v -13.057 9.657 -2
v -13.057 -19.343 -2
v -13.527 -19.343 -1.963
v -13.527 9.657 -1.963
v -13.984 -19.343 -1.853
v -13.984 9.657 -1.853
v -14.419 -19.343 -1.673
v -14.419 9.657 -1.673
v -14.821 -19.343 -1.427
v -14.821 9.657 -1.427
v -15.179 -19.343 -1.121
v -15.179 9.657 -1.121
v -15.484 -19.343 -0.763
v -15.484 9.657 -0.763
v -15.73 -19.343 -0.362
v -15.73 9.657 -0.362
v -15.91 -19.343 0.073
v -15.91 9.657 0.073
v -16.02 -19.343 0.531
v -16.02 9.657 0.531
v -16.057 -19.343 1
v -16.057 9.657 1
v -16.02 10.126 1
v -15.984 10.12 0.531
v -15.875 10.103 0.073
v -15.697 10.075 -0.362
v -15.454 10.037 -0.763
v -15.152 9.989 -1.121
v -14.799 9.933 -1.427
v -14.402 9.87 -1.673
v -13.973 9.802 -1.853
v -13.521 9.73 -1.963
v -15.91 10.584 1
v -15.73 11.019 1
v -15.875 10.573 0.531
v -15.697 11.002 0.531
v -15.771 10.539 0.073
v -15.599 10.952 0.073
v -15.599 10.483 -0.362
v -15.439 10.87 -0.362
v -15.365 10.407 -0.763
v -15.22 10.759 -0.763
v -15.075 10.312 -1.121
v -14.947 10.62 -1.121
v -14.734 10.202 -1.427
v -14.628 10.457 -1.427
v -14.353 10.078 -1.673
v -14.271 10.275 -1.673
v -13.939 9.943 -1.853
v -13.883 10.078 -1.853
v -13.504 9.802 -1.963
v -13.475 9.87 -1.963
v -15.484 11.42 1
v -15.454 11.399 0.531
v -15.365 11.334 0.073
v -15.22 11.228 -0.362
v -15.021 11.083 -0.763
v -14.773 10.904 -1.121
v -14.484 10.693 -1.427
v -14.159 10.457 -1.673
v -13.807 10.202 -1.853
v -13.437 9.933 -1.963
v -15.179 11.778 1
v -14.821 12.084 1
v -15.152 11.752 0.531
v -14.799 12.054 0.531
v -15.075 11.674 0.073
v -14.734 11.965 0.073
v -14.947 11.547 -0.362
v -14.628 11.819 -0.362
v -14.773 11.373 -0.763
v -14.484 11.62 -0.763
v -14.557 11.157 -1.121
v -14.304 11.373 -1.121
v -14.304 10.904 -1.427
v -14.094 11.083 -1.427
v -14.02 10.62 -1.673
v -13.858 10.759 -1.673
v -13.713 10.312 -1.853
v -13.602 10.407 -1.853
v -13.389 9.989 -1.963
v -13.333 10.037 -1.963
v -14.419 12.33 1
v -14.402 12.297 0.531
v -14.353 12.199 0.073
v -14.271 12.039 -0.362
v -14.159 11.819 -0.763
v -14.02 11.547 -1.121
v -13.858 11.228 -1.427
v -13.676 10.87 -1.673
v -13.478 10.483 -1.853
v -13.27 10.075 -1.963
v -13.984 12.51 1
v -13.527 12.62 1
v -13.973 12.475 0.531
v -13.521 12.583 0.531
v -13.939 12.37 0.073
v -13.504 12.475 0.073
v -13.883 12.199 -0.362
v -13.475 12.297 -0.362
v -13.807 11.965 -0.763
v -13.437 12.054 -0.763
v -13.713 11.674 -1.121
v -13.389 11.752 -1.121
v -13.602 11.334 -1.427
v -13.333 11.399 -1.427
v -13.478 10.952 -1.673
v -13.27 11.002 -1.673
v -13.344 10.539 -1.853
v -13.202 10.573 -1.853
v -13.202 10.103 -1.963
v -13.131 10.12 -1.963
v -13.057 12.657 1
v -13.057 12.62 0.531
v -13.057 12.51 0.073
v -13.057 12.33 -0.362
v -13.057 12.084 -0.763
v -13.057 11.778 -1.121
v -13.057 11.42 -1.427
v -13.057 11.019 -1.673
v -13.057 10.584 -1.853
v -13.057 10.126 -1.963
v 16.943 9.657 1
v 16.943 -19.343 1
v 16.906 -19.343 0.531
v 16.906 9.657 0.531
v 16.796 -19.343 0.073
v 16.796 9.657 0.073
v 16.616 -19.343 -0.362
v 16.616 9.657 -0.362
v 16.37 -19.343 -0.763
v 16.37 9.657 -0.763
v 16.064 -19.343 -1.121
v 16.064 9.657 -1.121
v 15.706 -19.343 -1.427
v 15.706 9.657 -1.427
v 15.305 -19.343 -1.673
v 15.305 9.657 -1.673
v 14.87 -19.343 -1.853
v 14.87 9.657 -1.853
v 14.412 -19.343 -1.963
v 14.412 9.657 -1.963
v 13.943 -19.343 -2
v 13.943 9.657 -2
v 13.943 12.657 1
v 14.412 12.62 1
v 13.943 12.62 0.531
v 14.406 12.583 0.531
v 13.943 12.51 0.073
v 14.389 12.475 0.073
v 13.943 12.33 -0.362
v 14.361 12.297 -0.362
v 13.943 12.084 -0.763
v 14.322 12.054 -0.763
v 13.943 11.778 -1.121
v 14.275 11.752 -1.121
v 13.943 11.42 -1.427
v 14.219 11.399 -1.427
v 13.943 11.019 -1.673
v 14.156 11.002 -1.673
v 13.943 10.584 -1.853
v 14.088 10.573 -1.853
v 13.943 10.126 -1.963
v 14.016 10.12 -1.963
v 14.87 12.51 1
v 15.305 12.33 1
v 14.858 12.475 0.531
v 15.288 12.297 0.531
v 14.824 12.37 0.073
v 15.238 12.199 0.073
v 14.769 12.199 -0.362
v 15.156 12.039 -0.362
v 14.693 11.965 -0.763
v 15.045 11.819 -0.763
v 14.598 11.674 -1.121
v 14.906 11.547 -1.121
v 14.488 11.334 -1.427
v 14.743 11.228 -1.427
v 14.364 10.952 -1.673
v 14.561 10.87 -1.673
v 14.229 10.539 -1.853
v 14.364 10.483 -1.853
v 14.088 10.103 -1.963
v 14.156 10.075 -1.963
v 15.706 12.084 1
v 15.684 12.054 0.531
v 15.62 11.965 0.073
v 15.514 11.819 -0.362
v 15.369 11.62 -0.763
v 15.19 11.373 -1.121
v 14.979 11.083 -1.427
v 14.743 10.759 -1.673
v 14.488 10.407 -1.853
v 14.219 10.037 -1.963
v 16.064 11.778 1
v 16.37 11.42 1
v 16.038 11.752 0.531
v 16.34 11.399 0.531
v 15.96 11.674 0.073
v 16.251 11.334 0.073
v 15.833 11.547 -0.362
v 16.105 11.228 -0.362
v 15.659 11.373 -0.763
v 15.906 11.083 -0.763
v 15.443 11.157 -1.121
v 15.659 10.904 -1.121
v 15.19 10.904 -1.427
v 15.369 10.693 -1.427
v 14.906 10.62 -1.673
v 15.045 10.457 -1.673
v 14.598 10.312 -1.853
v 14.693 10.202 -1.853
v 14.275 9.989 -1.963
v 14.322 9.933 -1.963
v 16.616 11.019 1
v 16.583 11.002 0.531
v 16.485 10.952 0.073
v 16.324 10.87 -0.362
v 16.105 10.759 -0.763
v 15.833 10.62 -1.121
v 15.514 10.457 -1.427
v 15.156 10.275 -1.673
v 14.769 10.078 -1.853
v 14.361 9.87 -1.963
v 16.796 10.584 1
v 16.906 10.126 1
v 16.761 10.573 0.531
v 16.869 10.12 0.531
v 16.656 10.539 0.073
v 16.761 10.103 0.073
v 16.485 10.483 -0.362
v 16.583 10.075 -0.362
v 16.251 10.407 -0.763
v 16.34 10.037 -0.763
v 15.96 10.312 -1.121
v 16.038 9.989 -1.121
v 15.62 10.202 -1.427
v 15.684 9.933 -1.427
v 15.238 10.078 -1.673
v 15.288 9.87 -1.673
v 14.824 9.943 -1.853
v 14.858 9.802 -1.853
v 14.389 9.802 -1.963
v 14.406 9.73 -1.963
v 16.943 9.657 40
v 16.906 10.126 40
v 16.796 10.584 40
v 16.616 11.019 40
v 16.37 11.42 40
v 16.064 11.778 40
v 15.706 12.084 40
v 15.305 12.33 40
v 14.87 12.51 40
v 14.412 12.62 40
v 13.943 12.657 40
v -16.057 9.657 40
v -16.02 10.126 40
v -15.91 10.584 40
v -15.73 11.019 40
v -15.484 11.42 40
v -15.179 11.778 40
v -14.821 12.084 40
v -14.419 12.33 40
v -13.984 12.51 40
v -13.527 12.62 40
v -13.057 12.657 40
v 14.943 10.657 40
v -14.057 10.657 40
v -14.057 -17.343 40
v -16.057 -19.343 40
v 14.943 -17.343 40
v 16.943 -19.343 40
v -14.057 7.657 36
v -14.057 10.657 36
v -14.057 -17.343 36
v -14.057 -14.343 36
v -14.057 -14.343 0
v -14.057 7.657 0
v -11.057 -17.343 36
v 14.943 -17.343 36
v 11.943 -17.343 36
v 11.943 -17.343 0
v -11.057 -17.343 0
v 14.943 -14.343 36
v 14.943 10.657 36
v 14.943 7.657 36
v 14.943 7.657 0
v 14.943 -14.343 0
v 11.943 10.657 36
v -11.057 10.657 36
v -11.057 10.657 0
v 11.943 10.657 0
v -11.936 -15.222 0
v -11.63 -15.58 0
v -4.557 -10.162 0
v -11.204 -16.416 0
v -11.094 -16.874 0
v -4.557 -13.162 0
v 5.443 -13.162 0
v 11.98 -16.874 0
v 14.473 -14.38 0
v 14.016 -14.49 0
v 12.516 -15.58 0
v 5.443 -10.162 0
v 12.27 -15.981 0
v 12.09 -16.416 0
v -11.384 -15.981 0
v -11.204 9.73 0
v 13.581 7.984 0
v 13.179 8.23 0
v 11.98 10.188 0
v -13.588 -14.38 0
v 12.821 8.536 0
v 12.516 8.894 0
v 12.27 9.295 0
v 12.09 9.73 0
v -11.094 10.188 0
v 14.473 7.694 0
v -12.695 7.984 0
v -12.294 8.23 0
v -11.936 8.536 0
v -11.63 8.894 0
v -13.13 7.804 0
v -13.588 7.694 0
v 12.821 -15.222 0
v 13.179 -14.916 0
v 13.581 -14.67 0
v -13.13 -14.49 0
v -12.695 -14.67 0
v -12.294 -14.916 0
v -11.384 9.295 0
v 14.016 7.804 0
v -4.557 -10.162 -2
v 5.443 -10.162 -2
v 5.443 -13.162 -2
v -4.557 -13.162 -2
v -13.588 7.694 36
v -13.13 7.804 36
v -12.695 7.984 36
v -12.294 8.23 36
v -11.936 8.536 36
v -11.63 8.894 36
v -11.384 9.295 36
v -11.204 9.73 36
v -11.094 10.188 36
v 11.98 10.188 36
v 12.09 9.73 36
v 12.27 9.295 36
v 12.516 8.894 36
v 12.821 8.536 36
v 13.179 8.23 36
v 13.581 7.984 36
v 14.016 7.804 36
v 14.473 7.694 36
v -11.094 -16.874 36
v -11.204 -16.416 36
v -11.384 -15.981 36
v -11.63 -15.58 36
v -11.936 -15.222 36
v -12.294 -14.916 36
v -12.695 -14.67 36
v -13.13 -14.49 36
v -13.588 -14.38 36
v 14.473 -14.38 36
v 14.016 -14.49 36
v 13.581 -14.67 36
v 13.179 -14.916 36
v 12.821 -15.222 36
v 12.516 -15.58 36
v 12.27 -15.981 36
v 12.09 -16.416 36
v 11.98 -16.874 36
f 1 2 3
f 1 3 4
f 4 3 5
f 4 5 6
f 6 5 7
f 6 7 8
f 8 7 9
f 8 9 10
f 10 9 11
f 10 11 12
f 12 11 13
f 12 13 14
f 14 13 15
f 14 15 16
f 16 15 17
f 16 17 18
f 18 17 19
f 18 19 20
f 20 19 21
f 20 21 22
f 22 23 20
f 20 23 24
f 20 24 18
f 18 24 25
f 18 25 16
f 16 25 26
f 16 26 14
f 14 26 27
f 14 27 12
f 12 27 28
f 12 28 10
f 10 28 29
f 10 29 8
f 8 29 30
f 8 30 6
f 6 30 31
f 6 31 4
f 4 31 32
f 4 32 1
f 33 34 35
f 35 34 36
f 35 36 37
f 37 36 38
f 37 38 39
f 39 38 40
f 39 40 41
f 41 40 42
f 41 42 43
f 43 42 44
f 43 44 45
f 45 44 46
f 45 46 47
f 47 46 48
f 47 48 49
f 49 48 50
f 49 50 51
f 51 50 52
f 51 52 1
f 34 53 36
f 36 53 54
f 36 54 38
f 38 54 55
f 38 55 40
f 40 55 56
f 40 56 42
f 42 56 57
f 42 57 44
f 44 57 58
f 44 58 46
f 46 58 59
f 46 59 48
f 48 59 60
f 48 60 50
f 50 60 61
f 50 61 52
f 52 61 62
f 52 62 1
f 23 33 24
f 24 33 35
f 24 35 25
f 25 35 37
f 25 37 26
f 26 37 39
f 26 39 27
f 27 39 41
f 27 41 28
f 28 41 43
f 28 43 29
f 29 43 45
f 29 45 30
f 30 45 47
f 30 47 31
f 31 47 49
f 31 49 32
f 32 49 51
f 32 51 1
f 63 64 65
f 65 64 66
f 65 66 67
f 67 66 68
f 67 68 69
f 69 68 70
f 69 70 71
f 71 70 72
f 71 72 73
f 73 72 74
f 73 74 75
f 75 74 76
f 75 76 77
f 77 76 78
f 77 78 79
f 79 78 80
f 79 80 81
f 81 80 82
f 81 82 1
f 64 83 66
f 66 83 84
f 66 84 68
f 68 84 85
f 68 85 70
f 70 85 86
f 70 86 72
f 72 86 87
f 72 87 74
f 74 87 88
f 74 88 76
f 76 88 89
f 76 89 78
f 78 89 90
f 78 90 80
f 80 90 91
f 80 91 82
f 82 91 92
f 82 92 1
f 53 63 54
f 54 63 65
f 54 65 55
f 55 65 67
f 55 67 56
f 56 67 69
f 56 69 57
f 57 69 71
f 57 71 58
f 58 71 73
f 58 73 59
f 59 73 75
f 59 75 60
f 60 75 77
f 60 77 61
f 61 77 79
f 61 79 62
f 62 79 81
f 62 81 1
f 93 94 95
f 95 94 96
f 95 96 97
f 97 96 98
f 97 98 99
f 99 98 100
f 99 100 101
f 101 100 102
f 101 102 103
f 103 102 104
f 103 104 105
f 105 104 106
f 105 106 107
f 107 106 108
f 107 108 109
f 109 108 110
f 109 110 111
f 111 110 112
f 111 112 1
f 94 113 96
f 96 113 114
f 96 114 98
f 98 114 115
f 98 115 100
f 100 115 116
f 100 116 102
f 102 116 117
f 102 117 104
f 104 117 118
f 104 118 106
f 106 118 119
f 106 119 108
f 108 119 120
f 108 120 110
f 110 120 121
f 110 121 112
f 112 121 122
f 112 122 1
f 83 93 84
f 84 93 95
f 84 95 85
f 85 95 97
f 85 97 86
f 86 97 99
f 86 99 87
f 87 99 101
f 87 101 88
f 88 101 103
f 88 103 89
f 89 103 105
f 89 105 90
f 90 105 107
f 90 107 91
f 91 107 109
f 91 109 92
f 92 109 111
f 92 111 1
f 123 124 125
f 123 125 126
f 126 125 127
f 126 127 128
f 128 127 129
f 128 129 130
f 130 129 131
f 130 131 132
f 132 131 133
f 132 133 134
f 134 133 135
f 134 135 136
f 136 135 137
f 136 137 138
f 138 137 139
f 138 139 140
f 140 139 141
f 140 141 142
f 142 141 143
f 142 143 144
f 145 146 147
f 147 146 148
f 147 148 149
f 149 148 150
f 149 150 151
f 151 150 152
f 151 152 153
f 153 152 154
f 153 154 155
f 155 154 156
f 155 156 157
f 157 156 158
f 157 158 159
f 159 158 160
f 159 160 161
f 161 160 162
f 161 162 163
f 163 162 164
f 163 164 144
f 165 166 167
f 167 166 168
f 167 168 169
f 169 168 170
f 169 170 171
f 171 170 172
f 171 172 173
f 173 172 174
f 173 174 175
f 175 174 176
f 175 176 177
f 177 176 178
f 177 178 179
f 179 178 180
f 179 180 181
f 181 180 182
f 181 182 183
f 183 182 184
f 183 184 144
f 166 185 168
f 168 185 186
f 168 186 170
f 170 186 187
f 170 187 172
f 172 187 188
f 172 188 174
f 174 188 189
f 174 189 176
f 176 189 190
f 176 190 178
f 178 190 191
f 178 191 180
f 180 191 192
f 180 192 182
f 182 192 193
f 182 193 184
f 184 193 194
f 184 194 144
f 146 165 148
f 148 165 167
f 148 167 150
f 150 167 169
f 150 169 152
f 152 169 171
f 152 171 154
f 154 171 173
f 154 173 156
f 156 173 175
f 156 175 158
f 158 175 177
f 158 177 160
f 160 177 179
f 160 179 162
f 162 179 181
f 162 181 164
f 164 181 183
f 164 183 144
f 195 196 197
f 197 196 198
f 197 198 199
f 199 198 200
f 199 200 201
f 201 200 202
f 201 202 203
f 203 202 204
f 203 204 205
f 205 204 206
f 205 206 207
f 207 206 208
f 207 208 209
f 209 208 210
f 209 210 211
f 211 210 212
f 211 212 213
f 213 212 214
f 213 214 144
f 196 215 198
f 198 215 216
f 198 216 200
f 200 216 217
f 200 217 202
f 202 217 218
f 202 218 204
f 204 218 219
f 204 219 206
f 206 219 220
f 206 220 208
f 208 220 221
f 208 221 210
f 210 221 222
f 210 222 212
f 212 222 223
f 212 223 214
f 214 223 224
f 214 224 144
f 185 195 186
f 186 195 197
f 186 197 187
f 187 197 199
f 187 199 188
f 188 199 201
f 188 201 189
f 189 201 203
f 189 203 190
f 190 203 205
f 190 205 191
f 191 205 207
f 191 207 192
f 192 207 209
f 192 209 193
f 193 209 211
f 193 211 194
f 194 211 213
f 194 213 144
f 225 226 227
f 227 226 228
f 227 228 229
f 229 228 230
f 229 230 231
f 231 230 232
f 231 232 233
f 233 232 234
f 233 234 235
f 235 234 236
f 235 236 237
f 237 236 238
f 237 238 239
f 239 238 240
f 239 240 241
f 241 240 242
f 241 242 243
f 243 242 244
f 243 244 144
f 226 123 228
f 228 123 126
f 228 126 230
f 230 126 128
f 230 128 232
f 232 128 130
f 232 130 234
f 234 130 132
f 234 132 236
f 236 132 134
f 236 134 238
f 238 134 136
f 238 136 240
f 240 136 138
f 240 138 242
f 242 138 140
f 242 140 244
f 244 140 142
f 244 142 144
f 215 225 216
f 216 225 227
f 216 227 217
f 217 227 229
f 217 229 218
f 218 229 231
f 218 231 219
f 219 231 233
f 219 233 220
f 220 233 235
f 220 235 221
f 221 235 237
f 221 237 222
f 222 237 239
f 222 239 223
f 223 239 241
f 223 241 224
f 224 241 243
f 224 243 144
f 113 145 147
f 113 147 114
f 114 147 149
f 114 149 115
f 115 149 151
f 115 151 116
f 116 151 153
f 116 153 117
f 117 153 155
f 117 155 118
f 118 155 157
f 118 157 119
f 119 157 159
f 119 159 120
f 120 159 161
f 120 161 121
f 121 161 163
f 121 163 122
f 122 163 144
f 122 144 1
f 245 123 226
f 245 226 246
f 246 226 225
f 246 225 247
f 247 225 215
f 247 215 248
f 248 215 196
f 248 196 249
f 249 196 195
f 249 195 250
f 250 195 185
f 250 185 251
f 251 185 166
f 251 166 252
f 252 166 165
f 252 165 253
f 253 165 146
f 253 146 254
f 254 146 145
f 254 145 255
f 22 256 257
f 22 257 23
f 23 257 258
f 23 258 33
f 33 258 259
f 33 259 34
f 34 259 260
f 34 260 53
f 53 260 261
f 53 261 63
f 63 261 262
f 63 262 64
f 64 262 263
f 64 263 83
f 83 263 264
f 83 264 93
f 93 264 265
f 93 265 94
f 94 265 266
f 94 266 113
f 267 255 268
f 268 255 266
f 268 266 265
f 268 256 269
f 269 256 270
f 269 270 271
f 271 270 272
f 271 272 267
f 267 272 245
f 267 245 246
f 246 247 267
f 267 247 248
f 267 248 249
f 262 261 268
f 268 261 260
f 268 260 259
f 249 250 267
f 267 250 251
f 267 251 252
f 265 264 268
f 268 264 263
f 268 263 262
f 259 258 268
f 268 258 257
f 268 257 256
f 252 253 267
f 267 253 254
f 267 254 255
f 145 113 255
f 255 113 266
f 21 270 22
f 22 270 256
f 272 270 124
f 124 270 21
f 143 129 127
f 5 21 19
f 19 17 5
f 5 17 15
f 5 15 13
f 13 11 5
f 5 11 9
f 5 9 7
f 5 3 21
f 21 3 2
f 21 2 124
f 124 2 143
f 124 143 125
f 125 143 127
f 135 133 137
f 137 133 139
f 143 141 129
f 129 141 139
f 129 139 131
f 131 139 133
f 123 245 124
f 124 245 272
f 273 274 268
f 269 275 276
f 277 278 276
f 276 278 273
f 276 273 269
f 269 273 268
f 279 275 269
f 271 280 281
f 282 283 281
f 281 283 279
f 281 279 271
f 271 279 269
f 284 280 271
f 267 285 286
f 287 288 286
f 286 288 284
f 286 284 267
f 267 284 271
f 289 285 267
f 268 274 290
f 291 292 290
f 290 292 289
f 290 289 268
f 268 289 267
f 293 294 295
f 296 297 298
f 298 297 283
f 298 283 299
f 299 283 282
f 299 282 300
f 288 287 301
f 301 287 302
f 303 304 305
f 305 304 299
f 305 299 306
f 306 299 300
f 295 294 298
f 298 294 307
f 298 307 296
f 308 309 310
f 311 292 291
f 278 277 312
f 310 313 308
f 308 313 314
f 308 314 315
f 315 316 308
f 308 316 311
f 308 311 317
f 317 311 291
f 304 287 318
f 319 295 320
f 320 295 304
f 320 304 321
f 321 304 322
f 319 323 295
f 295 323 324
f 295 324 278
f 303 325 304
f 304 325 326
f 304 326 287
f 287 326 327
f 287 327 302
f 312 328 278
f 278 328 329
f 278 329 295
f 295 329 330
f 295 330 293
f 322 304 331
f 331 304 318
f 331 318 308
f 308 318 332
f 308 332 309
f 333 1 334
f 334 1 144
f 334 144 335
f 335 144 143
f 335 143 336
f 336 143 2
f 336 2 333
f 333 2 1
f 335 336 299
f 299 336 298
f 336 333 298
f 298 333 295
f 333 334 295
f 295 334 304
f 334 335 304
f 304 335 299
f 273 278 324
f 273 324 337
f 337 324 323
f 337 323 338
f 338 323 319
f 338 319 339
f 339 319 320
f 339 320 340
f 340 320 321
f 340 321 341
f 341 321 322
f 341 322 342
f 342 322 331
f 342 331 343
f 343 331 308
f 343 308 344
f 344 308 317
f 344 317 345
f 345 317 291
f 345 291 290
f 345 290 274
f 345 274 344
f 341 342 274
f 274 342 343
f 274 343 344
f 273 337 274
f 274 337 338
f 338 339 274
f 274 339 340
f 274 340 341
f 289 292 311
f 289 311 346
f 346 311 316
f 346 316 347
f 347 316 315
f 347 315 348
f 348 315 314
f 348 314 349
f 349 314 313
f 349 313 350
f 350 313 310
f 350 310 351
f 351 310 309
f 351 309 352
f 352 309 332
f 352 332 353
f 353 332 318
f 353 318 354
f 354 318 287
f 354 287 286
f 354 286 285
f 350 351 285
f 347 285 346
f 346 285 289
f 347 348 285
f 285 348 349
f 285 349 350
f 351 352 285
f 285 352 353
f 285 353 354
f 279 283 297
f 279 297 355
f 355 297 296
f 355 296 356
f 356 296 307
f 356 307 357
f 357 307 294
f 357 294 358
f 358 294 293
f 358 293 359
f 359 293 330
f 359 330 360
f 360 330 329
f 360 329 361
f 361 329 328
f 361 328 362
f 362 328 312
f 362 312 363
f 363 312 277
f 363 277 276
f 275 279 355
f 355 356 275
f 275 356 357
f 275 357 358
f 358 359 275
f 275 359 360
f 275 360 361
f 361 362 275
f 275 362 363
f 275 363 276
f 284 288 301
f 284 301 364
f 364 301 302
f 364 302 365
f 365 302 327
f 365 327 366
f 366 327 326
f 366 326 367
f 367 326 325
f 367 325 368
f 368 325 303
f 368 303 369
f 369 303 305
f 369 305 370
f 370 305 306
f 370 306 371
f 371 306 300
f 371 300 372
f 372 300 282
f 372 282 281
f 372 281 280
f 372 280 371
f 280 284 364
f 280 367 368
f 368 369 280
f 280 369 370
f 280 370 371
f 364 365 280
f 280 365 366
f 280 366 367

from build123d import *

# Parameters (mm, degrees)
SKETCH_1_W      = 33
SKETCH_1_H      = 32
SKETCH_1_W_2    = 29
SKETCH_1_H_2    = 28
EXTRUDE_1_DEPTH = 40
SKETCH_2_W      = 33
SKETCH_2_H      = 32
SKETCH_2_W_2    = 10
SKETCH_2_H_2    = 3
EXTRUDE_2_DEPTH = 2
EXTRUDE_3_DEPTH = 36
FILLET_1_R      = 3
FILLET_2_R      = 3
FILLET_3_R      = 3


with BuildPart() as part:
    # 草图1 → 凸台-拉伸1 (new body)
    with BuildSketch(Plane.XY):
        with Locations((0.442802767, -3.343094476)):
            Rectangle(SKETCH_1_W, SKETCH_1_H)
        with Locations((0.442802767, -3.343094476)):
            Rectangle(SKETCH_1_W_2, SKETCH_1_H_2, mode=Mode.SUBTRACT)
    extrude(amount=EXTRUDE_1_DEPTH)

    # 草图2 → 凸台-拉伸2 (add)
    with BuildSketch(Plane(origin=(0, 0, 0), x_dir=(-1, 0, 0), z_dir=(0, 0, -1))):
        with Locations((-0.442802767, -3.343094476)):
            Rectangle(SKETCH_2_W, SKETCH_2_H)
        with Locations((-0.442802767, -11.661758268)):
            Rectangle(SKETCH_2_W_2, SKETCH_2_H_2, mode=Mode.SUBTRACT)
    extrude(amount=EXTRUDE_2_DEPTH)

    # 草图5 → 凸台-拉伸3 (add)
    with BuildSketch(Plane(origin=(0, 0, 0), x_dir=(-1, 0, 0), z_dir=(0, 0, -1))):
        with BuildLine():
            Line((11.057197233, 10.656905524), (14.057197233, 10.656905524))
            Line((14.057197233, 10.656905524), (14.057197233, 7.656905524))
            ThreePointArc((14.057197233, 7.656905524), (11.935876889, 8.535585181), (11.057197233, 10.656905524))
        make_face()
        with BuildLine():
            Line((-11.942802767, 10.656905524), (-14.942802767, 10.656905524))
            Line((-14.942802767, 10.656905524), (-14.942802767, 7.656905524))
            ThreePointArc((-14.942802767, 7.656905524), (-12.821482424, 8.535585181), (-11.942802767, 10.656905524))
        make_face()
        with BuildLine():
            Line((-14.942802767, -14.343094476), (-14.942802767, -17.343094476))
            Line((-14.942802767, -17.343094476), (-11.942802767, -17.343094476))
            ThreePointArc((-11.942802767, -17.343094476), (-12.821482424, -15.221774132), (-14.942802767, -14.343094476))
        make_face()
        with BuildLine():
            Line((11.057197233, -17.343094476), (14.057197233, -17.343094476))
            Line((14.057197233, -17.343094476), (14.057197233, -14.343094476))
            ThreePointArc((14.057197233, -14.343094476), (11.935876889, -15.221774132), (11.057197233, -17.343094476))
        make_face()
    extrude(amount=-EXTRUDE_3_DEPTH)

    # 圆角1
    fillet_1_edges = [part.edges().sort_by_distance(p)[0] for p in [
        (0.442802767, 12.656905524, -2),
        (16.942802767, 12.656905524, 19),
        (-16.057197233, 12.656905524, 19),
    ]]
    fillet(fillet_1_edges, radius=FILLET_1_R)

    # 圆角2
    # the kernel refuses this fillet: 3 mm, written as the material it takes off along each edge
    with BuildSketch(Plane(origin=(13.942802767, 9.656905524, 1), x_dir=(1, 0, 0), z_dir=(0, 0, -1))) as fillet_2_piece_1_section:
        Polygon((0, 0), (FILLET_2_R, 0), (FILLET_2_R, -FILLET_2_R), (0, -FILLET_2_R), align=None)
    fillet_2_piece_1 = extrude(amount=FILLET_2_R, mode=Mode.PRIVATE)
    fillet_2_piece_1 = fillet_2_piece_1 - Plane(origin=(13.942802767, 9.656905524, 1), x_dir=(-0.7071067811865475, -0.7071067811865475, 0), z_dir=(0, 0, -1)) * Sphere(FILLET_2_R, mode=Mode.PRIVATE)
    add(fillet_2_piece_1, mode=Mode.SUBTRACT)
    with BuildSketch(Plane(origin=(16.942802767, -26.843094476, -2), x_dir=(-1, 0, 0), z_dir=(0, 1, 0))) as fillet_2_piece_2:
        with BuildLine():
            CenterArc((FILLET_2_R, FILLET_2_R), FILLET_2_R, 180, 90)
            Line((0, FILLET_2_R), (0, 0))
            Line((0, 0), (FILLET_2_R, 0))
        make_face()
    extrude(amount=36.5, mode=Mode.SUBTRACT)

    # 圆角3
    # the kernel refuses this fillet: 3 mm, written as the material it takes off along each edge
    with BuildSketch(Plane(origin=(-13.057197233, 9.656905524, 1), x_dir=(0, 0, -1), z_dir=(-1, 0, 0))) as fillet_3_piece_1_section:
        Polygon((0, 0), (FILLET_3_R, 0), (FILLET_3_R, -FILLET_3_R), (0, -FILLET_3_R), align=None)
    fillet_3_piece_1 = extrude(amount=FILLET_3_R, mode=Mode.PRIVATE)
    fillet_3_piece_1 = fillet_3_piece_1 - Plane(origin=(-13.057197233, 9.656905524, 1), x_dir=(0, -0.7071067811865475, 0.7071067811865475), z_dir=(-1, 0, 0)) * Sphere(FILLET_3_R, mode=Mode.PRIVATE)
    add(fillet_3_piece_1, mode=Mode.SUBTRACT)
    with BuildSketch(Plane(origin=(-16.057197233, 9.656905524, -2), x_dir=(0, 0, 1), z_dir=(0, -1, 0))) as fillet_3_piece_2:
        with BuildLine():
            CenterArc((FILLET_3_R, -FILLET_3_R), FILLET_3_R, 90, 90)
            Line((0, -FILLET_3_R), (0, 0))
            Line((0, 0), (FILLET_3_R, 0))
        make_face()
    extrude(amount=36.5, mode=Mode.SUBTRACT)


solid = part.part
